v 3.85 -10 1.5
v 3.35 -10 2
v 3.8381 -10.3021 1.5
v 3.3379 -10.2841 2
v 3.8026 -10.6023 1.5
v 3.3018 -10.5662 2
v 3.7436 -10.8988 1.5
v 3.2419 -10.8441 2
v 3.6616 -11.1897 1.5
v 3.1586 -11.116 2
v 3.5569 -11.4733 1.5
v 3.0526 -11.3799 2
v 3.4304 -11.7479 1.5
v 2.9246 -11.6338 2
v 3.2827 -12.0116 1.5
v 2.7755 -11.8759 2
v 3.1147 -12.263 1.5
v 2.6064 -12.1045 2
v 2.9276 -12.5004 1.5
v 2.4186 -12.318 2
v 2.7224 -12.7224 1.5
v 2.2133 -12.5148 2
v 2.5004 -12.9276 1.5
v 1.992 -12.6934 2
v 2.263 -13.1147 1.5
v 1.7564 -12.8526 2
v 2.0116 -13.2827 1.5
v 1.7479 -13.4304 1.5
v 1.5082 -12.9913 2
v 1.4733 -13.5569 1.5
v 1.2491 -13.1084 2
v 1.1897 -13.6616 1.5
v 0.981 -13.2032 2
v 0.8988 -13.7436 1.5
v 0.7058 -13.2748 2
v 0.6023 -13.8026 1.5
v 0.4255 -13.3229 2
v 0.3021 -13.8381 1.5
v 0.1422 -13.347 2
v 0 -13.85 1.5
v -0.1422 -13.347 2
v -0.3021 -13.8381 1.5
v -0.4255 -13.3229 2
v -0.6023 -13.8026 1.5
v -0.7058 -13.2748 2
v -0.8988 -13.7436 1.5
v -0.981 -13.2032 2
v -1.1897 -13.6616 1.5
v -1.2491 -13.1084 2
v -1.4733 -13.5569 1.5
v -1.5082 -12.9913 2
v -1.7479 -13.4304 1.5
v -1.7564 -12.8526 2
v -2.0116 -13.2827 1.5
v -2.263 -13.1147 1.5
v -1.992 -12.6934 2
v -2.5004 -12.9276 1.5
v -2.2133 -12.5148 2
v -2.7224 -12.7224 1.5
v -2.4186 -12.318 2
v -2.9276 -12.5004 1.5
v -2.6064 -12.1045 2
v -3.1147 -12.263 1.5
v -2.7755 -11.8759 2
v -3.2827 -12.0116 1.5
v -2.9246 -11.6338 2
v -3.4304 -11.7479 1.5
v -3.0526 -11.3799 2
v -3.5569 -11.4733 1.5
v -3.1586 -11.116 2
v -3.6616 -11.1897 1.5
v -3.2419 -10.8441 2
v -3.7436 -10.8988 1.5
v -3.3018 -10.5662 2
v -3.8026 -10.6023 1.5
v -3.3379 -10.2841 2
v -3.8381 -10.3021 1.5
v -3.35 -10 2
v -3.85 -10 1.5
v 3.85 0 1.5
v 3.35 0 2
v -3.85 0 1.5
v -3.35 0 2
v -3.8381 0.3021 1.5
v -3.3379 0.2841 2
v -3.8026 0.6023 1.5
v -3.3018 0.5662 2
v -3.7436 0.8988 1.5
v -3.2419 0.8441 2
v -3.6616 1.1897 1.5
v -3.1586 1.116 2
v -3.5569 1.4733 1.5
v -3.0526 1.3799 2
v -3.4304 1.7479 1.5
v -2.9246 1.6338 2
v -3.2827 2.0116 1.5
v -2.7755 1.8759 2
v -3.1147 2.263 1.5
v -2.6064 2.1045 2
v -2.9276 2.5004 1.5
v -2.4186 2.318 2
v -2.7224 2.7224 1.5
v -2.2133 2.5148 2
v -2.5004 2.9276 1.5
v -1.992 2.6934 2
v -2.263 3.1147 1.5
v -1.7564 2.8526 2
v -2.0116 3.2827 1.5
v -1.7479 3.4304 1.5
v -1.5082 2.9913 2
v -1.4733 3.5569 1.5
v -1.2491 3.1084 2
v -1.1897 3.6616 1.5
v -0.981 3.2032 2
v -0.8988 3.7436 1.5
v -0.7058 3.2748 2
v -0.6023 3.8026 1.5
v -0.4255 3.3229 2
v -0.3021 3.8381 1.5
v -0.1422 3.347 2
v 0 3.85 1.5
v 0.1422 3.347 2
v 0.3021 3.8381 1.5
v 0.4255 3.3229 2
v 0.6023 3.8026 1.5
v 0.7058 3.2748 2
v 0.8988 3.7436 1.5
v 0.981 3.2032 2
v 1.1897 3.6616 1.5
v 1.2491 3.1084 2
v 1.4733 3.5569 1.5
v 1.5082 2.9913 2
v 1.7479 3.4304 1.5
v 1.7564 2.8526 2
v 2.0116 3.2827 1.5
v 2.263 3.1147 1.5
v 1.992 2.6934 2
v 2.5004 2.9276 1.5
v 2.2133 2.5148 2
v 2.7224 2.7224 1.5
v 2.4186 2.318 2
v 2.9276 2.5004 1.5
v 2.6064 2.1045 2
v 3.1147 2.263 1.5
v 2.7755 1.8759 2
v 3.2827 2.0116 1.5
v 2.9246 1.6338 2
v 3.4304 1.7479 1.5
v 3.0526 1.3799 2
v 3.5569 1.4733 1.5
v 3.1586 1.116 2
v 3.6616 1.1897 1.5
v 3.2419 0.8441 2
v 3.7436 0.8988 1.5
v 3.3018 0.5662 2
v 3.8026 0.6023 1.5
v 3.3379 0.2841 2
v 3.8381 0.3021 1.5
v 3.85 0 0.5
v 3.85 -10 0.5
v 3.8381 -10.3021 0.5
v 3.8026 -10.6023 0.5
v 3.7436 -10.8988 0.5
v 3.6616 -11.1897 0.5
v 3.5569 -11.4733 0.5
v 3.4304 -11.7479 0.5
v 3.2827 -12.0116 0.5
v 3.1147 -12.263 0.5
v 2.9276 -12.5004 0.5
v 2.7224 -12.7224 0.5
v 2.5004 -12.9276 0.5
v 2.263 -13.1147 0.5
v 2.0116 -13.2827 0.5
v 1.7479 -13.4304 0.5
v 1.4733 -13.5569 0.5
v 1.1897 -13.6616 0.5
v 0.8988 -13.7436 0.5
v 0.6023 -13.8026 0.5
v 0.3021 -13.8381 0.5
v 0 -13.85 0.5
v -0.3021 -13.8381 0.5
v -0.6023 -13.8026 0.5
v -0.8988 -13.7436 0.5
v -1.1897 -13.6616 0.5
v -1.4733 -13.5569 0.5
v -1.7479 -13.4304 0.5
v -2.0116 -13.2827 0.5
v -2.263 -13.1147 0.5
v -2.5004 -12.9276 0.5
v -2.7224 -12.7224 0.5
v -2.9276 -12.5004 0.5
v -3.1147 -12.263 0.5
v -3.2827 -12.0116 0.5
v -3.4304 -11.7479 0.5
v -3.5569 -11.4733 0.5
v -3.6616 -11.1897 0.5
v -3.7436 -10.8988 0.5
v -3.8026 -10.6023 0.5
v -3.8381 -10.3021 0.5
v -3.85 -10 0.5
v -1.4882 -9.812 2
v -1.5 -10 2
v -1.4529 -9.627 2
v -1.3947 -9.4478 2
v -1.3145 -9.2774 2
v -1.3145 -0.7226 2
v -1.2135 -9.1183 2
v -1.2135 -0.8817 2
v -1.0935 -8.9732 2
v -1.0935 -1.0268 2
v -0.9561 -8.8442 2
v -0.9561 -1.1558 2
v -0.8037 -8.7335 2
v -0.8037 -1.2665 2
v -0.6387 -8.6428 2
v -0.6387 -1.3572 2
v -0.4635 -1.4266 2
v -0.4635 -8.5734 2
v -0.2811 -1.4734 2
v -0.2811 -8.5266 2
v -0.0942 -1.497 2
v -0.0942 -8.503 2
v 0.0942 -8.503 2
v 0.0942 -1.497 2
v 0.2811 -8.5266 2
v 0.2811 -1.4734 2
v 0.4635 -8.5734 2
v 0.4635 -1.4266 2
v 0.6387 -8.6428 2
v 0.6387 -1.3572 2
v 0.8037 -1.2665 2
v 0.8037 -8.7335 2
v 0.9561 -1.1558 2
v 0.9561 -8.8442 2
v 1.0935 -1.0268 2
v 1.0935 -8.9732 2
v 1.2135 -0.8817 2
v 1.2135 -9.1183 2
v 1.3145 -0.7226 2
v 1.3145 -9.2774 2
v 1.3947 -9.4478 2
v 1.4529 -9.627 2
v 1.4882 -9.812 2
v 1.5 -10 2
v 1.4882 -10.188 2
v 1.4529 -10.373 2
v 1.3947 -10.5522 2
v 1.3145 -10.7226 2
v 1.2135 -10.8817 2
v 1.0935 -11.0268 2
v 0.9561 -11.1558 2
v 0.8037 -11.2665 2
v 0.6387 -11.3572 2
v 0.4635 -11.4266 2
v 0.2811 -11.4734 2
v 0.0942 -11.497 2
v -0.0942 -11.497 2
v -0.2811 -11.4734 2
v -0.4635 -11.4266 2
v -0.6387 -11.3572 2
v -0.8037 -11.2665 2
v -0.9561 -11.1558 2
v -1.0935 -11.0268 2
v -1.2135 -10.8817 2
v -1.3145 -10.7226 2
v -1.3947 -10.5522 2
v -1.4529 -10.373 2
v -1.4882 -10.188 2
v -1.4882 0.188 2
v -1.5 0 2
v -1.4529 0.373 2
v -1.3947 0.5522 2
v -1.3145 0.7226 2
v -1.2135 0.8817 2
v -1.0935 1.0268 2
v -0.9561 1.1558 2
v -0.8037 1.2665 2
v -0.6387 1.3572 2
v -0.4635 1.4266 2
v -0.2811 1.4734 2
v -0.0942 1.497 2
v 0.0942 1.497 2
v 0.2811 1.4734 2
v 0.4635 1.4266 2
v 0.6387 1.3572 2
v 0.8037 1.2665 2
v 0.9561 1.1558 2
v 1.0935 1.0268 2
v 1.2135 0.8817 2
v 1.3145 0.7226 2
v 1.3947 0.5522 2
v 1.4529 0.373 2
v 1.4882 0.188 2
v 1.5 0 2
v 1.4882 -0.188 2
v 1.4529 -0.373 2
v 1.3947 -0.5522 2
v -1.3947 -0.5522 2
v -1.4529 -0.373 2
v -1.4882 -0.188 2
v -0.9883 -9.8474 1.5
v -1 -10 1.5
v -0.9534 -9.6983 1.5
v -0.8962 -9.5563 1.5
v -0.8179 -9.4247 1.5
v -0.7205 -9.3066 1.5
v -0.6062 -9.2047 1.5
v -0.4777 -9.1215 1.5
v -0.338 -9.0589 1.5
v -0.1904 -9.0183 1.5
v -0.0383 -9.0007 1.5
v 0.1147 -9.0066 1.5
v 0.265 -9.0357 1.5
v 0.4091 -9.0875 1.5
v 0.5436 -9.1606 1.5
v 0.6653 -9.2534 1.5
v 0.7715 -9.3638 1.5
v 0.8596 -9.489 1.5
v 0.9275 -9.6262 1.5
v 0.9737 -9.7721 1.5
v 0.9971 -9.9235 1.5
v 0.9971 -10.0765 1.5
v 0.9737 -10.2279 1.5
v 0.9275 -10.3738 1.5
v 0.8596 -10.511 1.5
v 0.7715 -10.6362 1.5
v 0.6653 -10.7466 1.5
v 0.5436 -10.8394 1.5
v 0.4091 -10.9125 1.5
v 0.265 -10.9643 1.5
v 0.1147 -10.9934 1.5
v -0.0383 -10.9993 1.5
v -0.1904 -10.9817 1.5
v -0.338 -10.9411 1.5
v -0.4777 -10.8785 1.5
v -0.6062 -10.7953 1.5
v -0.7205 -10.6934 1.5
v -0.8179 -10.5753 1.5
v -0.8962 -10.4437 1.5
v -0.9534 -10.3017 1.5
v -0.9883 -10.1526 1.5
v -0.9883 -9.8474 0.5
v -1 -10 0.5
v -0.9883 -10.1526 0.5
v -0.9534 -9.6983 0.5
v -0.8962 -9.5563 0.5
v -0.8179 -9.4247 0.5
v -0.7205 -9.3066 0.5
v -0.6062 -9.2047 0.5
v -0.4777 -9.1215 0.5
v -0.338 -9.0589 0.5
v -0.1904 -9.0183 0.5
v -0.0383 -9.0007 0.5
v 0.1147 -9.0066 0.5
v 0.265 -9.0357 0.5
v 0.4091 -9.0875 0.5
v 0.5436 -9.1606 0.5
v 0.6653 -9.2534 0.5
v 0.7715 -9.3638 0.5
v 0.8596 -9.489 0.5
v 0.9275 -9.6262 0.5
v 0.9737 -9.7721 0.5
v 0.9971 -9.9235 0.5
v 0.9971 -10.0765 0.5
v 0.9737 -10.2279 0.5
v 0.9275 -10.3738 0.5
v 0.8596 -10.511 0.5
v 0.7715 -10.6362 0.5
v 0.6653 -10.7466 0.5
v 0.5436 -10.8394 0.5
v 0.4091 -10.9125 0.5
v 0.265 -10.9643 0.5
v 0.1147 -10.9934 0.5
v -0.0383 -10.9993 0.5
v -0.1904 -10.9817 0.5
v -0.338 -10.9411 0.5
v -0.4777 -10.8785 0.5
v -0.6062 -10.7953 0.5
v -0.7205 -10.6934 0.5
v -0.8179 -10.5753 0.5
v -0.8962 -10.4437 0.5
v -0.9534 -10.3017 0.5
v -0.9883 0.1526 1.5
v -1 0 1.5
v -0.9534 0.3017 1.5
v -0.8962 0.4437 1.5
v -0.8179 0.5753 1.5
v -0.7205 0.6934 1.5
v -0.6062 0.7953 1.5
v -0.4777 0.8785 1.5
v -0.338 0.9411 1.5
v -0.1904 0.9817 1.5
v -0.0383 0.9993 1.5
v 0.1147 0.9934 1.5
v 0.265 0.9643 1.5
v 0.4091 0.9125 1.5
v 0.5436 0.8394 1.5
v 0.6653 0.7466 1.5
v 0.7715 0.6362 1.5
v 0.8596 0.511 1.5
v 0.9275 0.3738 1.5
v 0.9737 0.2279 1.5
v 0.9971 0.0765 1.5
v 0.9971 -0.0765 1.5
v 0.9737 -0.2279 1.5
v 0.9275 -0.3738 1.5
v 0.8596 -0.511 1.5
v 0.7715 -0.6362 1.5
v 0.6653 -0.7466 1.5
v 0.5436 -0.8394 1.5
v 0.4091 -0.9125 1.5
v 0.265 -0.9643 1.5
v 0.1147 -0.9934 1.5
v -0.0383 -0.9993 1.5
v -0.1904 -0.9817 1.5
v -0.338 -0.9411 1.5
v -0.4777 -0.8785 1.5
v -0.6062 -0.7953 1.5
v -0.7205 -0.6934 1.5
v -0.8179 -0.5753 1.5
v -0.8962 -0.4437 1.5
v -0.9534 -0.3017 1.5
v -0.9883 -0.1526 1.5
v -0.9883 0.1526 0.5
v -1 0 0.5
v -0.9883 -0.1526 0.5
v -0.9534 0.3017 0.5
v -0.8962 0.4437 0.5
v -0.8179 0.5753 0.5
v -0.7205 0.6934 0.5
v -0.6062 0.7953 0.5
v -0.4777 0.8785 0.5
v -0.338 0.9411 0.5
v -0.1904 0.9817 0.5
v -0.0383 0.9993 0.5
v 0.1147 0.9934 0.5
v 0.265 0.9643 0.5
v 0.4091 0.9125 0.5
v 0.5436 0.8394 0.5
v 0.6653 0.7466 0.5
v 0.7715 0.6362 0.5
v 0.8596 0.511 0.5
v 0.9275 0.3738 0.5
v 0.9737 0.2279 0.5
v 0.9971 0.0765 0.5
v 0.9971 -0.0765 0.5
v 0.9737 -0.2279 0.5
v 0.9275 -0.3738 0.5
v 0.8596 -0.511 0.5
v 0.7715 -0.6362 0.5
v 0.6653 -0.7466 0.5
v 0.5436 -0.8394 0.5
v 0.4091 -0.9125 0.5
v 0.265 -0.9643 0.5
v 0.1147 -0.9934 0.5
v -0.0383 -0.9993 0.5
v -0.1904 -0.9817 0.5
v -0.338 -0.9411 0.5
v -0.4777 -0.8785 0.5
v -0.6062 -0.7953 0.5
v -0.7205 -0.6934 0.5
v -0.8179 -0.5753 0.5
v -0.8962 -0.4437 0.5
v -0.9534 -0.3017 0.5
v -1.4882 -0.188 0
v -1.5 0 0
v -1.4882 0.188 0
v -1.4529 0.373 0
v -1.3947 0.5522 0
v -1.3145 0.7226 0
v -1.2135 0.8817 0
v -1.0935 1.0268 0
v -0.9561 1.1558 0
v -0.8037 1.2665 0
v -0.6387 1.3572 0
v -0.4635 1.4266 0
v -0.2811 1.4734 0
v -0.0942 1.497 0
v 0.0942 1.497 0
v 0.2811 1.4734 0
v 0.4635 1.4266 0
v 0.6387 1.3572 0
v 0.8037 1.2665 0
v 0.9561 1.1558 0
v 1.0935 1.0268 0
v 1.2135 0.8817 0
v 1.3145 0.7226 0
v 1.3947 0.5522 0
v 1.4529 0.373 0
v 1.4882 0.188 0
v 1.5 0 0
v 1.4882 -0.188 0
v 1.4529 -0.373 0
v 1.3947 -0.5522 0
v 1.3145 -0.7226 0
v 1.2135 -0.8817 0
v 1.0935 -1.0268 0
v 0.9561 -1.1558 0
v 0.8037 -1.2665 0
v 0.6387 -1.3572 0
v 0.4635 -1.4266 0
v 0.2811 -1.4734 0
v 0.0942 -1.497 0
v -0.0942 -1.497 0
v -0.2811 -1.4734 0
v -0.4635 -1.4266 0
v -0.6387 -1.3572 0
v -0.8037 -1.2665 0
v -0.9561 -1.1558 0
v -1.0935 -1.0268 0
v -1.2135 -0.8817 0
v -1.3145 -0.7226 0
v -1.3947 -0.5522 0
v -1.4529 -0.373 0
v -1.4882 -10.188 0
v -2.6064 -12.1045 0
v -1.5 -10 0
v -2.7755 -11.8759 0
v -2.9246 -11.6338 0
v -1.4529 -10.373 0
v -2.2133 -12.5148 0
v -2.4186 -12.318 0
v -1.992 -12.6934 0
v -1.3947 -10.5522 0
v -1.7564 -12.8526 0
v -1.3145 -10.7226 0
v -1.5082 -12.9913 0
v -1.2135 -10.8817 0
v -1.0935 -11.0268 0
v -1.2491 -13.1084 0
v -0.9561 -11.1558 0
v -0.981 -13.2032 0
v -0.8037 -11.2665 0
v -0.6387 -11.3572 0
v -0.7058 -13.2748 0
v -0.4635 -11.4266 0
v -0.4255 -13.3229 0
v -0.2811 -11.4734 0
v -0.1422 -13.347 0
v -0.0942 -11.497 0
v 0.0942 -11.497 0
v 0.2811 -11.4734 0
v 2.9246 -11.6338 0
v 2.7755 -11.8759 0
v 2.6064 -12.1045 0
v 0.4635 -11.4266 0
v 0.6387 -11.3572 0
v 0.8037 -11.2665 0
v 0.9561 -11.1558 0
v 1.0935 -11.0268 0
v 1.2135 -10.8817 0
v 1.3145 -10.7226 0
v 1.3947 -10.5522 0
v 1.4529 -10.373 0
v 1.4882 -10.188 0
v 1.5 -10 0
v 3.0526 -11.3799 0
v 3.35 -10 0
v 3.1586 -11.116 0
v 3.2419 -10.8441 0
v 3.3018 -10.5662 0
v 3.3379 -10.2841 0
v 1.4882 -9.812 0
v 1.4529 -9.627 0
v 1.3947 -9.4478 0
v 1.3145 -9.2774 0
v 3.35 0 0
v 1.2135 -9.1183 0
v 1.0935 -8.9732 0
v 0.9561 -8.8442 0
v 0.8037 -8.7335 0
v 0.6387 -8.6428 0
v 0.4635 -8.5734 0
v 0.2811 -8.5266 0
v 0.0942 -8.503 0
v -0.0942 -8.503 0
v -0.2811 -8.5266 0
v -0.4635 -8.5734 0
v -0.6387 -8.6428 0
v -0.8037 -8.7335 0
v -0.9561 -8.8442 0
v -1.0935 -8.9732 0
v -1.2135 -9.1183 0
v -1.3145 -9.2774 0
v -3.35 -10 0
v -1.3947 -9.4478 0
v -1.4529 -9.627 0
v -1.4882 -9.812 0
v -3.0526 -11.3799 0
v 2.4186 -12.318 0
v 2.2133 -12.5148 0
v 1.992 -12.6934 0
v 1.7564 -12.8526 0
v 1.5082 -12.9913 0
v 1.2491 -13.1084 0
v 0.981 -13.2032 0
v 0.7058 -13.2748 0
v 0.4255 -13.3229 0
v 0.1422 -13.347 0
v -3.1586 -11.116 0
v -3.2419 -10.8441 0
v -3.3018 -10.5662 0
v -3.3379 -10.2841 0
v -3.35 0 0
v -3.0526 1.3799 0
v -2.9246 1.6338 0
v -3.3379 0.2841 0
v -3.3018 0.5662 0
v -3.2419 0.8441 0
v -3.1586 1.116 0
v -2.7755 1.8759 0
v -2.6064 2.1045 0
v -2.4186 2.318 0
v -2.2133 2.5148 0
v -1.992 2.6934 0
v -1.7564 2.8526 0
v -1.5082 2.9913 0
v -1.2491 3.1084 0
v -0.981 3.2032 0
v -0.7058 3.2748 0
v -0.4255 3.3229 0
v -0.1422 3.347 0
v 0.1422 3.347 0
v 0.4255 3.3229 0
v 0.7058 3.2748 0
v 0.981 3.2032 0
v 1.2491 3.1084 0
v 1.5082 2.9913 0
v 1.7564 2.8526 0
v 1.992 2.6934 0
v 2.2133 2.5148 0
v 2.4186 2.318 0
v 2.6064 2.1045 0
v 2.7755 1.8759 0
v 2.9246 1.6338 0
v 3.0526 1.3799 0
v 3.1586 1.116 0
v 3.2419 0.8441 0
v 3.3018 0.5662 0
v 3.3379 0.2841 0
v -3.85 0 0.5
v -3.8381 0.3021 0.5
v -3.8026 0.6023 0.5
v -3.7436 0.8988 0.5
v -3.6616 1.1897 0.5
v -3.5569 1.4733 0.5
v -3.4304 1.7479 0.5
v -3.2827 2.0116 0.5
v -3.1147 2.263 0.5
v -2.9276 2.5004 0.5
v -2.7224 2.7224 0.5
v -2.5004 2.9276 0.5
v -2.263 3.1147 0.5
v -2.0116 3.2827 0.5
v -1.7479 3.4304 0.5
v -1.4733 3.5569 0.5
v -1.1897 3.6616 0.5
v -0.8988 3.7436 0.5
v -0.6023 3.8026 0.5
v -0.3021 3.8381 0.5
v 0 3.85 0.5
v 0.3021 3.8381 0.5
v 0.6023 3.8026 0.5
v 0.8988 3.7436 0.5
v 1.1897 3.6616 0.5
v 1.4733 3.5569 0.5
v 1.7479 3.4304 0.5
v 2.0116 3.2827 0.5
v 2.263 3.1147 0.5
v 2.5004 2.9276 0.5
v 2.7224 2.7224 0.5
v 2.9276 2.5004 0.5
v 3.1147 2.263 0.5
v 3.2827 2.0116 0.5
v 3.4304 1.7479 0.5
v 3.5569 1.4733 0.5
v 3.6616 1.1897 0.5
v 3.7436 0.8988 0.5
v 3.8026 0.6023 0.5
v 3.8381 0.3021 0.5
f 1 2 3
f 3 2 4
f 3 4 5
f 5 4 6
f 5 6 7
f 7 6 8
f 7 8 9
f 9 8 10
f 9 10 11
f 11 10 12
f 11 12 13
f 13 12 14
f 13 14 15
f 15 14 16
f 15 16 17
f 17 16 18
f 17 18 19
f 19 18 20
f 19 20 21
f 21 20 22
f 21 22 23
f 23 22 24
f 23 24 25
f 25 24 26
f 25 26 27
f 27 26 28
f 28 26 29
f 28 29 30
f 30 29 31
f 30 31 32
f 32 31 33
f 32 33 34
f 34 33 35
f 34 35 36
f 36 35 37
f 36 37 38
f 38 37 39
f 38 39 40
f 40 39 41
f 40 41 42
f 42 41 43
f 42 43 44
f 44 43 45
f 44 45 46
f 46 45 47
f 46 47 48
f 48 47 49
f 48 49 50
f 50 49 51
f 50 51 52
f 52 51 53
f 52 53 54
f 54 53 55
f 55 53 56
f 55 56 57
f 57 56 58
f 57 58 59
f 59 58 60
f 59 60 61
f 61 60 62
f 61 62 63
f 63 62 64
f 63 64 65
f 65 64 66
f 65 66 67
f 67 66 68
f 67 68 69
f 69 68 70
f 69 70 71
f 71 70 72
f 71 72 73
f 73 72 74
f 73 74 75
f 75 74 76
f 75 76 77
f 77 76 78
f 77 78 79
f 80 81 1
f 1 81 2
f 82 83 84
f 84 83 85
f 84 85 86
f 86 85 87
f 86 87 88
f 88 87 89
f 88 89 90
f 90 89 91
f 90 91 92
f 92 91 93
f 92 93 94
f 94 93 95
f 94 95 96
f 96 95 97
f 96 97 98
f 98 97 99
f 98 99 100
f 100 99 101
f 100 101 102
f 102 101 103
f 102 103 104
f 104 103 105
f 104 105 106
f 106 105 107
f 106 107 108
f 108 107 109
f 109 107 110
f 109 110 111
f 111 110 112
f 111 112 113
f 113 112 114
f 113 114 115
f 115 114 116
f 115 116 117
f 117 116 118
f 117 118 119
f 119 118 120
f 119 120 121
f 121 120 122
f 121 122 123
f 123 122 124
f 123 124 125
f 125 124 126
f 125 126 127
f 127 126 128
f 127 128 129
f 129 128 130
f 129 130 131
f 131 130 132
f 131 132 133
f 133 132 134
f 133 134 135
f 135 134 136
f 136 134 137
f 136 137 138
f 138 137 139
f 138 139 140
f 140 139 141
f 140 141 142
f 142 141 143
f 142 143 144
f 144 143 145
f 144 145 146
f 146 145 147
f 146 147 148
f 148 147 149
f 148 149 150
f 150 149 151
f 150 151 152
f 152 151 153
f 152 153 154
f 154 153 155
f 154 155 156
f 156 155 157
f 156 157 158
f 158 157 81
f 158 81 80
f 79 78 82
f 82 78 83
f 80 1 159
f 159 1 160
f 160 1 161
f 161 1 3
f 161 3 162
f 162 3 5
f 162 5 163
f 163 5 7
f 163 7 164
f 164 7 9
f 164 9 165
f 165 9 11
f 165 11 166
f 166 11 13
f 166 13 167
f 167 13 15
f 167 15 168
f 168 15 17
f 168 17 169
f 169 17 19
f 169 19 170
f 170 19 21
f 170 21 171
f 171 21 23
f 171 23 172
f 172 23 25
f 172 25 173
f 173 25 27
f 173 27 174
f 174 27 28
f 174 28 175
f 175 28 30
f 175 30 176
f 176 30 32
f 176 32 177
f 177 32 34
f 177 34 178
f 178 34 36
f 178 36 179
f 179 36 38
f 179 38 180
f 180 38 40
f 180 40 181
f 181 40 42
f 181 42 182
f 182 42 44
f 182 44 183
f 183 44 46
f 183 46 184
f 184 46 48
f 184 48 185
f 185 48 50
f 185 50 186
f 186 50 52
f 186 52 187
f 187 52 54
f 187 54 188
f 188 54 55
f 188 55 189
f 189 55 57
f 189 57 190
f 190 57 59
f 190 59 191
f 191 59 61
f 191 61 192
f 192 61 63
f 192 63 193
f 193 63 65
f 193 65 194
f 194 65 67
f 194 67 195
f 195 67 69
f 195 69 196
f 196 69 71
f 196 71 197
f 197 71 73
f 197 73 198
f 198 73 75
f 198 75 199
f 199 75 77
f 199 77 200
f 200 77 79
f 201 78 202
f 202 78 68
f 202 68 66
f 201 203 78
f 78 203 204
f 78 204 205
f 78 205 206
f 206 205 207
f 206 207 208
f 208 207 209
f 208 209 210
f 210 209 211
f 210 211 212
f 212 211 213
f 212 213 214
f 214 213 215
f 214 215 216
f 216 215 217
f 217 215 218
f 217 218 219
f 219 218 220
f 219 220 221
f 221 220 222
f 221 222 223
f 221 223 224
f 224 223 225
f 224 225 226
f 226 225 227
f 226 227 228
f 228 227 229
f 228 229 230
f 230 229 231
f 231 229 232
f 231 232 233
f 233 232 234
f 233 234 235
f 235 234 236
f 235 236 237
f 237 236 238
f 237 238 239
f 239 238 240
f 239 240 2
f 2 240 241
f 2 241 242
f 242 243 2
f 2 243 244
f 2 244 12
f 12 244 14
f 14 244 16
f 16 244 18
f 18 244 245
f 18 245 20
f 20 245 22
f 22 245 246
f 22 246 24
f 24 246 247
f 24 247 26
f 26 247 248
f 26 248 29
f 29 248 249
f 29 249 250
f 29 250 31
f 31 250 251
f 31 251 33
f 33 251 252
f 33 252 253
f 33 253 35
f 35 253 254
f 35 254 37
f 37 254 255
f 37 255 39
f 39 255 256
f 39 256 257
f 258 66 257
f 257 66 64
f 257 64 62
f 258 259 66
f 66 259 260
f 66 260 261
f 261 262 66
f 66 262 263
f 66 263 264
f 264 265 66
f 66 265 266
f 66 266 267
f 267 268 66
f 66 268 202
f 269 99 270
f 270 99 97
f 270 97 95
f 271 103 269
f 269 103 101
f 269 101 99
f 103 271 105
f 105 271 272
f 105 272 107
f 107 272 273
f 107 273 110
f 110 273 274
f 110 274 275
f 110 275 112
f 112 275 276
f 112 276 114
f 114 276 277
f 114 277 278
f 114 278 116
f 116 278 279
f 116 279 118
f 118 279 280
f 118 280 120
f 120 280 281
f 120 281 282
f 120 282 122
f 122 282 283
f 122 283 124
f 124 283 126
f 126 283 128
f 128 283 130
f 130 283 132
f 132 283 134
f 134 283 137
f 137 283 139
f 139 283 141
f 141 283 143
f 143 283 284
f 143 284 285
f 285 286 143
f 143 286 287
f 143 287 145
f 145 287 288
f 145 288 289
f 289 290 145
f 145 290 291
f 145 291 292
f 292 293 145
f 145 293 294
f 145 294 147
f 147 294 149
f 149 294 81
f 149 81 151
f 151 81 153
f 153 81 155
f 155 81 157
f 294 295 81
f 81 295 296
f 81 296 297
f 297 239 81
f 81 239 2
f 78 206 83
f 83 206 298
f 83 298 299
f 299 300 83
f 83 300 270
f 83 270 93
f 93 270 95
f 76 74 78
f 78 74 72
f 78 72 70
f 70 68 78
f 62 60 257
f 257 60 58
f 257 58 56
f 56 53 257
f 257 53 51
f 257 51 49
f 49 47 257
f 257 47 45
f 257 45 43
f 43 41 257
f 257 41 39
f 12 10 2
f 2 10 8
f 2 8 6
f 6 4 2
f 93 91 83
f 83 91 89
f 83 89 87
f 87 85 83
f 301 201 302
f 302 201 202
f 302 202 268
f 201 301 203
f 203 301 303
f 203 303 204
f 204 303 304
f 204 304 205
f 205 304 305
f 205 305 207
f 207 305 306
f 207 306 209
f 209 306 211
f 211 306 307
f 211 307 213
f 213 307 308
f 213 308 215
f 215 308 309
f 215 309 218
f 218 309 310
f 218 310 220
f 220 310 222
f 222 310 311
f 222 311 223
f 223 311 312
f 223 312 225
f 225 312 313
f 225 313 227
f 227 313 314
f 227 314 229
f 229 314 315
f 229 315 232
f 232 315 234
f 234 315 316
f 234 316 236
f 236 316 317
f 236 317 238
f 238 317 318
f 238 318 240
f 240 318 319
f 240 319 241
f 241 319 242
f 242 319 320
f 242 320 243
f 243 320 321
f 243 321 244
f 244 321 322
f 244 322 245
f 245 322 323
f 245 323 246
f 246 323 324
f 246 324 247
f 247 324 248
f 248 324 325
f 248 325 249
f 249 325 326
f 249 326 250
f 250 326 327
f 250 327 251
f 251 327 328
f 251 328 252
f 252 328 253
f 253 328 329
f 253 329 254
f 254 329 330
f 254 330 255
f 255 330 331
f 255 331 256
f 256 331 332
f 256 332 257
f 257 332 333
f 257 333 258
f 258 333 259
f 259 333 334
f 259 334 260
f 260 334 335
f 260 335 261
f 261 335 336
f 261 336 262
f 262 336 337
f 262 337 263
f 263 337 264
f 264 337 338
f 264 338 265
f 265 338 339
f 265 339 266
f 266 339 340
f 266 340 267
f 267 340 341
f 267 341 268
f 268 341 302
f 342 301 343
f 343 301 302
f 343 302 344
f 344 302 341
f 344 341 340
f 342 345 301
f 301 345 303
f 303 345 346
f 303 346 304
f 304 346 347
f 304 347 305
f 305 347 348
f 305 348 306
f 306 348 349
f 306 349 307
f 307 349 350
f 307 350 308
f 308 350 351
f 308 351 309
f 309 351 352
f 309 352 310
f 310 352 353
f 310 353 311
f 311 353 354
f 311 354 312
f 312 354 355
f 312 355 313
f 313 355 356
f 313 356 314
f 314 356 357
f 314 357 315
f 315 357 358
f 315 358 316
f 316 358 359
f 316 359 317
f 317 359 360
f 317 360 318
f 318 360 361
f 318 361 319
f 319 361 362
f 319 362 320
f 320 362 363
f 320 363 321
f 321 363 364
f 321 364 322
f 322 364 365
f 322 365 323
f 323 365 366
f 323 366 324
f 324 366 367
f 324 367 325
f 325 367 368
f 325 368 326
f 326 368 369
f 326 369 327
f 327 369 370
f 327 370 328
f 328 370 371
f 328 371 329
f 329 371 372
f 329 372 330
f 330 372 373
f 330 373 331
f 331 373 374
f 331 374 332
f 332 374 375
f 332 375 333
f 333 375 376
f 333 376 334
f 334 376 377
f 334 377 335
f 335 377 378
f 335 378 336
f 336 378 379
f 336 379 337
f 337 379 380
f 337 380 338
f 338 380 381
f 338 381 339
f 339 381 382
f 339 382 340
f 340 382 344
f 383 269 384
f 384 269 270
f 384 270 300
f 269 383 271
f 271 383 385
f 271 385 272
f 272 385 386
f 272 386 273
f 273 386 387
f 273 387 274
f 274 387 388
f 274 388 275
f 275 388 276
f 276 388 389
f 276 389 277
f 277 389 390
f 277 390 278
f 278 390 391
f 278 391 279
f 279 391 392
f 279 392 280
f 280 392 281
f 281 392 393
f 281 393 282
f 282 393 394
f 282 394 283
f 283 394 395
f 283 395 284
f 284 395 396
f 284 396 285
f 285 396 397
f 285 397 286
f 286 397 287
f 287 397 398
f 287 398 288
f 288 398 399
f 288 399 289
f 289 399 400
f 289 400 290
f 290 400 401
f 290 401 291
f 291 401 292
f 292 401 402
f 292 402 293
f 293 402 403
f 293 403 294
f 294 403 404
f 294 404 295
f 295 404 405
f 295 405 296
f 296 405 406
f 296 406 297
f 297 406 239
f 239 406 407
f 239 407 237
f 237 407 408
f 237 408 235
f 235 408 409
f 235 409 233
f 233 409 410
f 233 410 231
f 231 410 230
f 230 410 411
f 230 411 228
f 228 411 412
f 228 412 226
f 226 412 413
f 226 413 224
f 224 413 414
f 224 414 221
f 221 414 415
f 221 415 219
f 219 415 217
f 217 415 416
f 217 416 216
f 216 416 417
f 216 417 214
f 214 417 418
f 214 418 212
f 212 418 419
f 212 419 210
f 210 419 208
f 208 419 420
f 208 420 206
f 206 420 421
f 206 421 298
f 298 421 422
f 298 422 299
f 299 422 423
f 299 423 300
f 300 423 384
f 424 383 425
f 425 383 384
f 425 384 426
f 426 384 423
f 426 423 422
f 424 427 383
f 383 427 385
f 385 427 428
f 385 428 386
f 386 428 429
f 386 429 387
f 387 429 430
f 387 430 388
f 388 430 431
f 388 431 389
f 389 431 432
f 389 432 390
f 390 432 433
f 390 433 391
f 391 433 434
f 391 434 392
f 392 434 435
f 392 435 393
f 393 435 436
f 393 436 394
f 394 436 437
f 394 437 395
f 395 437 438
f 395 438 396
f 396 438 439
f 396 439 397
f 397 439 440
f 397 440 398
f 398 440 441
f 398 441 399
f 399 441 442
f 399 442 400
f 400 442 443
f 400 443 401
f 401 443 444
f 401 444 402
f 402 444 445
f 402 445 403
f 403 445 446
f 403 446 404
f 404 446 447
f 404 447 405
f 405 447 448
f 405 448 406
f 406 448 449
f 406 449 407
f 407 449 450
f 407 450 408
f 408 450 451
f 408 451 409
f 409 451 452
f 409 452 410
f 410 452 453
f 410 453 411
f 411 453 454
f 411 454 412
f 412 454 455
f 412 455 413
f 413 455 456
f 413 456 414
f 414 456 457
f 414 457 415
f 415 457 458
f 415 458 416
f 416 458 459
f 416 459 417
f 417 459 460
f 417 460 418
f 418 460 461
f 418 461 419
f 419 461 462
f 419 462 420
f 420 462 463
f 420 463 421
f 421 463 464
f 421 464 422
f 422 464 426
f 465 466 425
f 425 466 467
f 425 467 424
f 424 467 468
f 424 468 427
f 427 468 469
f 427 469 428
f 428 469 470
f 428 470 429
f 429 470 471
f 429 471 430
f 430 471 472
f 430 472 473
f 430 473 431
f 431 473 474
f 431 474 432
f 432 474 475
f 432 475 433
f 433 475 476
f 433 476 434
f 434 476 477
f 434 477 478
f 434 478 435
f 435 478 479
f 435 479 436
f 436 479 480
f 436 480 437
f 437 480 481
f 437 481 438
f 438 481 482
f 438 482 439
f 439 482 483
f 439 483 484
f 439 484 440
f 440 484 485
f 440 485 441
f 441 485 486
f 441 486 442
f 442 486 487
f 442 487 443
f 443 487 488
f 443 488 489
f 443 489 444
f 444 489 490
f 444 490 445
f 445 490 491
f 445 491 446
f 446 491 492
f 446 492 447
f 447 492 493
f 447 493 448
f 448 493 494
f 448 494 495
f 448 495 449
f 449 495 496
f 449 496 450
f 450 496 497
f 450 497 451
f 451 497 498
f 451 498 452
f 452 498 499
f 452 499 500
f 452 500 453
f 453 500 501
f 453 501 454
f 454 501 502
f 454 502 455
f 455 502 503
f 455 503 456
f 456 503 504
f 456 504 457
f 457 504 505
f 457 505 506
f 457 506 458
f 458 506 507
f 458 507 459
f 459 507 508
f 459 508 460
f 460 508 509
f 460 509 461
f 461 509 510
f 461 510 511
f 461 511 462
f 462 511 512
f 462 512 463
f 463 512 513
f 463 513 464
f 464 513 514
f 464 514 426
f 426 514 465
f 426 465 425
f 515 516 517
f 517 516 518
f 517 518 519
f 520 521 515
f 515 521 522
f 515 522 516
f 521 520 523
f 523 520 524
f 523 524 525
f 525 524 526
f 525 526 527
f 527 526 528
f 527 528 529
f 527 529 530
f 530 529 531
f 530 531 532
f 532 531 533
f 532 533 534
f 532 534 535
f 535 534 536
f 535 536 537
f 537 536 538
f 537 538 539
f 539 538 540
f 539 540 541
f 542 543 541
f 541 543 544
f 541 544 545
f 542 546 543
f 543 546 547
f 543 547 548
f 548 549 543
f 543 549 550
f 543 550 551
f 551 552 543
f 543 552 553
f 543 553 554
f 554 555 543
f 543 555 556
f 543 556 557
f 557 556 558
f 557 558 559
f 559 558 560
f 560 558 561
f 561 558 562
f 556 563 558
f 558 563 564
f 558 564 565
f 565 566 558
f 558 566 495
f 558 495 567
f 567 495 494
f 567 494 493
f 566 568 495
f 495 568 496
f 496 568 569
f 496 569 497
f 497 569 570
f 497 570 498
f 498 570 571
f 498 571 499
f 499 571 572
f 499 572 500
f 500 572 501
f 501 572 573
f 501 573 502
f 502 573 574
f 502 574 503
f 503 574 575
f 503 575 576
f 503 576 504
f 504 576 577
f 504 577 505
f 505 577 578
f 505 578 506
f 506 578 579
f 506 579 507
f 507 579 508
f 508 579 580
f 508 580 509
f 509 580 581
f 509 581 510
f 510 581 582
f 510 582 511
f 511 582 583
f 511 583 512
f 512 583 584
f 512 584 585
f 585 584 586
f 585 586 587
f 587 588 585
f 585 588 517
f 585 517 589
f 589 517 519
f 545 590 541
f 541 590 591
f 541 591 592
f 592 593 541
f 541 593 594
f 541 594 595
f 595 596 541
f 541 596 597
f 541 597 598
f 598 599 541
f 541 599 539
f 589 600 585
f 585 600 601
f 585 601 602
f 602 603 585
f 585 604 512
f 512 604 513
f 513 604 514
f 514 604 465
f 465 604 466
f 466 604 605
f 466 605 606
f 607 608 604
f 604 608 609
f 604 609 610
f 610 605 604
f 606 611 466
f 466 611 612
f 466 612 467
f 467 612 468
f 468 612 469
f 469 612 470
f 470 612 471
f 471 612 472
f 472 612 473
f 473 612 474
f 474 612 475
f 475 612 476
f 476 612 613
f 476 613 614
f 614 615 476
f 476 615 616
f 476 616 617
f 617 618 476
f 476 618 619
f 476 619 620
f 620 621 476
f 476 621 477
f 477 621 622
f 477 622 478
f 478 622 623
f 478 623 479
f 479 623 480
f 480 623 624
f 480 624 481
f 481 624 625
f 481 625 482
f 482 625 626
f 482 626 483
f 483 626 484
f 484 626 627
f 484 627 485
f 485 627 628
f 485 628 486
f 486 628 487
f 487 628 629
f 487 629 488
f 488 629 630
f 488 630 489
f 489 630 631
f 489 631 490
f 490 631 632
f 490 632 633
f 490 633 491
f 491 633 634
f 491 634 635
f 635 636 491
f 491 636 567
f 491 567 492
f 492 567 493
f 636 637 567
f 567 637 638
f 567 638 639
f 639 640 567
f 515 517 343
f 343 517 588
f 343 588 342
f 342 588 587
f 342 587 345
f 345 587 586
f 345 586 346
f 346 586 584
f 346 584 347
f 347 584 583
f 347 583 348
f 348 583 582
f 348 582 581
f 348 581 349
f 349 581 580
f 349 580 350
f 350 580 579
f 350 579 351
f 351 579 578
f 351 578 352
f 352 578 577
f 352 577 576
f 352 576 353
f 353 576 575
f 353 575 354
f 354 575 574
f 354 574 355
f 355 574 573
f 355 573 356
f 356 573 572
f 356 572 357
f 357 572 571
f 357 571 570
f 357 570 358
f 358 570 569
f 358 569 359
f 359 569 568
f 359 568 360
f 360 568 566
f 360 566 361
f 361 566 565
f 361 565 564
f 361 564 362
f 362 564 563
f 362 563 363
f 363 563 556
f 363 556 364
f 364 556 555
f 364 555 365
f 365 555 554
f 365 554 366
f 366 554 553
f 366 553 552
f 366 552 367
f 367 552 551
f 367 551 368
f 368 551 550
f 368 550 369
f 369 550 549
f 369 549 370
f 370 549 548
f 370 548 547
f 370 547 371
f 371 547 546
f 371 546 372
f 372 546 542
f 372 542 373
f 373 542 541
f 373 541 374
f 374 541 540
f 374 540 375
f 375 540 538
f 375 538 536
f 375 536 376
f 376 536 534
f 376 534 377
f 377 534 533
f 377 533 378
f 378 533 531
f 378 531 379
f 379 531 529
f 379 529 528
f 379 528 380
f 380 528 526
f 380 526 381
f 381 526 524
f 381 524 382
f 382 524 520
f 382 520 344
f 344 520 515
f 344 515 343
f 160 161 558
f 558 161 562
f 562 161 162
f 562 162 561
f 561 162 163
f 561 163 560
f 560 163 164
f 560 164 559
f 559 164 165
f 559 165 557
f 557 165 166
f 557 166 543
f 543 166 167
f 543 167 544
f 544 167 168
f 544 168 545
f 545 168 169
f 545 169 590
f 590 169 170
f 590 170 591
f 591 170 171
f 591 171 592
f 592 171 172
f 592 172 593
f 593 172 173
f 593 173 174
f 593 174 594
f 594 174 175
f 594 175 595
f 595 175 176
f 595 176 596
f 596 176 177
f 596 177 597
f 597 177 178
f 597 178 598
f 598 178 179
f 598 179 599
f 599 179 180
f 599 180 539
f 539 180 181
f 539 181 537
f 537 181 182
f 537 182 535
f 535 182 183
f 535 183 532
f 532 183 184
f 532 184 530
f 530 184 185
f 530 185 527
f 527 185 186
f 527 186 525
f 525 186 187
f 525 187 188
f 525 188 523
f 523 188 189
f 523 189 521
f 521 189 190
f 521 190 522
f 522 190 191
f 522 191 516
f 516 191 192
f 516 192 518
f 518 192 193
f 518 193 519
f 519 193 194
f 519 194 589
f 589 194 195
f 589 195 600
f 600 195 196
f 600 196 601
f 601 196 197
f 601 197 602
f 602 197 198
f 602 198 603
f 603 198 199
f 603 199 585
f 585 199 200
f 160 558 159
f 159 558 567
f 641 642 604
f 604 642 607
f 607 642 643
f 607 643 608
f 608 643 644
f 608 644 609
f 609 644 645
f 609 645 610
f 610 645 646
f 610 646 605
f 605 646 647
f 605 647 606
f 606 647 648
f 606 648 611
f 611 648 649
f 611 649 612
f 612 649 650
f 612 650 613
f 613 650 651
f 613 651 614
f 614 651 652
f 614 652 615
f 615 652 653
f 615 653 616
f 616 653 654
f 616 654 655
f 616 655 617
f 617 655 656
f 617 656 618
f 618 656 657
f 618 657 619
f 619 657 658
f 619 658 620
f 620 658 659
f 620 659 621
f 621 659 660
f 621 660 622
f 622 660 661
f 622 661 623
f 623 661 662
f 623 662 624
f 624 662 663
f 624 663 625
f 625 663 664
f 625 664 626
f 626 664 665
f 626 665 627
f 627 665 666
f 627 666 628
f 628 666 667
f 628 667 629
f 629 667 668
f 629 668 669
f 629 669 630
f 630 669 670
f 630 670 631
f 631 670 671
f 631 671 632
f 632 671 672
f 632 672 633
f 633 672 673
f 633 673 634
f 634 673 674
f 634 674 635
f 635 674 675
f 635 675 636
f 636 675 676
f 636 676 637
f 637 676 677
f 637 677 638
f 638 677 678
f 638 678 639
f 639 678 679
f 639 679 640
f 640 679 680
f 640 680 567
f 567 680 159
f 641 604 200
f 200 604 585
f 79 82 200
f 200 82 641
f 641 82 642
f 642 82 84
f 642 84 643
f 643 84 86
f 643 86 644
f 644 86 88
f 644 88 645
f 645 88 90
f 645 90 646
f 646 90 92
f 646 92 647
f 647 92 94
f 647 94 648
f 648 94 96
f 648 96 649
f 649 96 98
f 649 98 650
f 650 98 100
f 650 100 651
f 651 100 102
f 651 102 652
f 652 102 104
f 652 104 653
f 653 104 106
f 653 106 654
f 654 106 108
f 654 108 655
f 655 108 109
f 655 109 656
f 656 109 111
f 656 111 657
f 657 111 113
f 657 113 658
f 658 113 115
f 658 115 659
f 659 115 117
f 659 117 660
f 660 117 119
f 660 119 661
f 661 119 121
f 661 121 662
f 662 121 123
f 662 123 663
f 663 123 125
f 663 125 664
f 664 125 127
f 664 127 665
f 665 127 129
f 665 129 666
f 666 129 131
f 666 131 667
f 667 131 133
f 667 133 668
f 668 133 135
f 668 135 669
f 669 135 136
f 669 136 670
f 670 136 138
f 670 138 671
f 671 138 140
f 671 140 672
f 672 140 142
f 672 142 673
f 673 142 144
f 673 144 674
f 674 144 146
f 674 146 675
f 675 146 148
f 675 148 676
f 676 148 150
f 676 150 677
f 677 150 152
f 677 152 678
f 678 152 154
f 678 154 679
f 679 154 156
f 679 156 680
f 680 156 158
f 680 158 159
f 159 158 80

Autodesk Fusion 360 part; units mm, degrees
sketch "Skizze1" plane through (0, 0, 0) normal (0, 0, 1) x (1, 0, 0)
  line L0 (3.85, 0) -> (3.85, -10)
  line L1 (-3.85, -10) -> (-3.85, 0)
  arc A0 (-3.85, -10) -> (3.85, -10) centre (0, -10) ccw
  arc A1 (3.85, 0) -> (-3.85, 0) centre (0, 0) ccw
  circle A2 centre (0, 0) radius 1
  circle A3 centre (0, -10) radius 1
  dimension "d609" = 7.7
  dimension "d610" = 10
  dimension "d613" = 2
extrude "Extrusion1" add sketch "Skizze1" along normal blind 2
chamfer "Fase1" distance 0.5 angle 45 12 edges at (0, -13.85, 0) (3.85, -5, 0) (0, 3.85, 0) (-3.85, -5, 0) (-0.9323, -9.6384, 0) (-0.9323, 0.3616, 0) (-0.9323, 0.3616, 2) (-0.9323, -9.6384, 2) (0, -13.85, 2) (3.85, -5, 2) (0, 3.85, 2) (-3.85, -5, 2)
equation "d609 = 8 mm - 0.3 mm"
